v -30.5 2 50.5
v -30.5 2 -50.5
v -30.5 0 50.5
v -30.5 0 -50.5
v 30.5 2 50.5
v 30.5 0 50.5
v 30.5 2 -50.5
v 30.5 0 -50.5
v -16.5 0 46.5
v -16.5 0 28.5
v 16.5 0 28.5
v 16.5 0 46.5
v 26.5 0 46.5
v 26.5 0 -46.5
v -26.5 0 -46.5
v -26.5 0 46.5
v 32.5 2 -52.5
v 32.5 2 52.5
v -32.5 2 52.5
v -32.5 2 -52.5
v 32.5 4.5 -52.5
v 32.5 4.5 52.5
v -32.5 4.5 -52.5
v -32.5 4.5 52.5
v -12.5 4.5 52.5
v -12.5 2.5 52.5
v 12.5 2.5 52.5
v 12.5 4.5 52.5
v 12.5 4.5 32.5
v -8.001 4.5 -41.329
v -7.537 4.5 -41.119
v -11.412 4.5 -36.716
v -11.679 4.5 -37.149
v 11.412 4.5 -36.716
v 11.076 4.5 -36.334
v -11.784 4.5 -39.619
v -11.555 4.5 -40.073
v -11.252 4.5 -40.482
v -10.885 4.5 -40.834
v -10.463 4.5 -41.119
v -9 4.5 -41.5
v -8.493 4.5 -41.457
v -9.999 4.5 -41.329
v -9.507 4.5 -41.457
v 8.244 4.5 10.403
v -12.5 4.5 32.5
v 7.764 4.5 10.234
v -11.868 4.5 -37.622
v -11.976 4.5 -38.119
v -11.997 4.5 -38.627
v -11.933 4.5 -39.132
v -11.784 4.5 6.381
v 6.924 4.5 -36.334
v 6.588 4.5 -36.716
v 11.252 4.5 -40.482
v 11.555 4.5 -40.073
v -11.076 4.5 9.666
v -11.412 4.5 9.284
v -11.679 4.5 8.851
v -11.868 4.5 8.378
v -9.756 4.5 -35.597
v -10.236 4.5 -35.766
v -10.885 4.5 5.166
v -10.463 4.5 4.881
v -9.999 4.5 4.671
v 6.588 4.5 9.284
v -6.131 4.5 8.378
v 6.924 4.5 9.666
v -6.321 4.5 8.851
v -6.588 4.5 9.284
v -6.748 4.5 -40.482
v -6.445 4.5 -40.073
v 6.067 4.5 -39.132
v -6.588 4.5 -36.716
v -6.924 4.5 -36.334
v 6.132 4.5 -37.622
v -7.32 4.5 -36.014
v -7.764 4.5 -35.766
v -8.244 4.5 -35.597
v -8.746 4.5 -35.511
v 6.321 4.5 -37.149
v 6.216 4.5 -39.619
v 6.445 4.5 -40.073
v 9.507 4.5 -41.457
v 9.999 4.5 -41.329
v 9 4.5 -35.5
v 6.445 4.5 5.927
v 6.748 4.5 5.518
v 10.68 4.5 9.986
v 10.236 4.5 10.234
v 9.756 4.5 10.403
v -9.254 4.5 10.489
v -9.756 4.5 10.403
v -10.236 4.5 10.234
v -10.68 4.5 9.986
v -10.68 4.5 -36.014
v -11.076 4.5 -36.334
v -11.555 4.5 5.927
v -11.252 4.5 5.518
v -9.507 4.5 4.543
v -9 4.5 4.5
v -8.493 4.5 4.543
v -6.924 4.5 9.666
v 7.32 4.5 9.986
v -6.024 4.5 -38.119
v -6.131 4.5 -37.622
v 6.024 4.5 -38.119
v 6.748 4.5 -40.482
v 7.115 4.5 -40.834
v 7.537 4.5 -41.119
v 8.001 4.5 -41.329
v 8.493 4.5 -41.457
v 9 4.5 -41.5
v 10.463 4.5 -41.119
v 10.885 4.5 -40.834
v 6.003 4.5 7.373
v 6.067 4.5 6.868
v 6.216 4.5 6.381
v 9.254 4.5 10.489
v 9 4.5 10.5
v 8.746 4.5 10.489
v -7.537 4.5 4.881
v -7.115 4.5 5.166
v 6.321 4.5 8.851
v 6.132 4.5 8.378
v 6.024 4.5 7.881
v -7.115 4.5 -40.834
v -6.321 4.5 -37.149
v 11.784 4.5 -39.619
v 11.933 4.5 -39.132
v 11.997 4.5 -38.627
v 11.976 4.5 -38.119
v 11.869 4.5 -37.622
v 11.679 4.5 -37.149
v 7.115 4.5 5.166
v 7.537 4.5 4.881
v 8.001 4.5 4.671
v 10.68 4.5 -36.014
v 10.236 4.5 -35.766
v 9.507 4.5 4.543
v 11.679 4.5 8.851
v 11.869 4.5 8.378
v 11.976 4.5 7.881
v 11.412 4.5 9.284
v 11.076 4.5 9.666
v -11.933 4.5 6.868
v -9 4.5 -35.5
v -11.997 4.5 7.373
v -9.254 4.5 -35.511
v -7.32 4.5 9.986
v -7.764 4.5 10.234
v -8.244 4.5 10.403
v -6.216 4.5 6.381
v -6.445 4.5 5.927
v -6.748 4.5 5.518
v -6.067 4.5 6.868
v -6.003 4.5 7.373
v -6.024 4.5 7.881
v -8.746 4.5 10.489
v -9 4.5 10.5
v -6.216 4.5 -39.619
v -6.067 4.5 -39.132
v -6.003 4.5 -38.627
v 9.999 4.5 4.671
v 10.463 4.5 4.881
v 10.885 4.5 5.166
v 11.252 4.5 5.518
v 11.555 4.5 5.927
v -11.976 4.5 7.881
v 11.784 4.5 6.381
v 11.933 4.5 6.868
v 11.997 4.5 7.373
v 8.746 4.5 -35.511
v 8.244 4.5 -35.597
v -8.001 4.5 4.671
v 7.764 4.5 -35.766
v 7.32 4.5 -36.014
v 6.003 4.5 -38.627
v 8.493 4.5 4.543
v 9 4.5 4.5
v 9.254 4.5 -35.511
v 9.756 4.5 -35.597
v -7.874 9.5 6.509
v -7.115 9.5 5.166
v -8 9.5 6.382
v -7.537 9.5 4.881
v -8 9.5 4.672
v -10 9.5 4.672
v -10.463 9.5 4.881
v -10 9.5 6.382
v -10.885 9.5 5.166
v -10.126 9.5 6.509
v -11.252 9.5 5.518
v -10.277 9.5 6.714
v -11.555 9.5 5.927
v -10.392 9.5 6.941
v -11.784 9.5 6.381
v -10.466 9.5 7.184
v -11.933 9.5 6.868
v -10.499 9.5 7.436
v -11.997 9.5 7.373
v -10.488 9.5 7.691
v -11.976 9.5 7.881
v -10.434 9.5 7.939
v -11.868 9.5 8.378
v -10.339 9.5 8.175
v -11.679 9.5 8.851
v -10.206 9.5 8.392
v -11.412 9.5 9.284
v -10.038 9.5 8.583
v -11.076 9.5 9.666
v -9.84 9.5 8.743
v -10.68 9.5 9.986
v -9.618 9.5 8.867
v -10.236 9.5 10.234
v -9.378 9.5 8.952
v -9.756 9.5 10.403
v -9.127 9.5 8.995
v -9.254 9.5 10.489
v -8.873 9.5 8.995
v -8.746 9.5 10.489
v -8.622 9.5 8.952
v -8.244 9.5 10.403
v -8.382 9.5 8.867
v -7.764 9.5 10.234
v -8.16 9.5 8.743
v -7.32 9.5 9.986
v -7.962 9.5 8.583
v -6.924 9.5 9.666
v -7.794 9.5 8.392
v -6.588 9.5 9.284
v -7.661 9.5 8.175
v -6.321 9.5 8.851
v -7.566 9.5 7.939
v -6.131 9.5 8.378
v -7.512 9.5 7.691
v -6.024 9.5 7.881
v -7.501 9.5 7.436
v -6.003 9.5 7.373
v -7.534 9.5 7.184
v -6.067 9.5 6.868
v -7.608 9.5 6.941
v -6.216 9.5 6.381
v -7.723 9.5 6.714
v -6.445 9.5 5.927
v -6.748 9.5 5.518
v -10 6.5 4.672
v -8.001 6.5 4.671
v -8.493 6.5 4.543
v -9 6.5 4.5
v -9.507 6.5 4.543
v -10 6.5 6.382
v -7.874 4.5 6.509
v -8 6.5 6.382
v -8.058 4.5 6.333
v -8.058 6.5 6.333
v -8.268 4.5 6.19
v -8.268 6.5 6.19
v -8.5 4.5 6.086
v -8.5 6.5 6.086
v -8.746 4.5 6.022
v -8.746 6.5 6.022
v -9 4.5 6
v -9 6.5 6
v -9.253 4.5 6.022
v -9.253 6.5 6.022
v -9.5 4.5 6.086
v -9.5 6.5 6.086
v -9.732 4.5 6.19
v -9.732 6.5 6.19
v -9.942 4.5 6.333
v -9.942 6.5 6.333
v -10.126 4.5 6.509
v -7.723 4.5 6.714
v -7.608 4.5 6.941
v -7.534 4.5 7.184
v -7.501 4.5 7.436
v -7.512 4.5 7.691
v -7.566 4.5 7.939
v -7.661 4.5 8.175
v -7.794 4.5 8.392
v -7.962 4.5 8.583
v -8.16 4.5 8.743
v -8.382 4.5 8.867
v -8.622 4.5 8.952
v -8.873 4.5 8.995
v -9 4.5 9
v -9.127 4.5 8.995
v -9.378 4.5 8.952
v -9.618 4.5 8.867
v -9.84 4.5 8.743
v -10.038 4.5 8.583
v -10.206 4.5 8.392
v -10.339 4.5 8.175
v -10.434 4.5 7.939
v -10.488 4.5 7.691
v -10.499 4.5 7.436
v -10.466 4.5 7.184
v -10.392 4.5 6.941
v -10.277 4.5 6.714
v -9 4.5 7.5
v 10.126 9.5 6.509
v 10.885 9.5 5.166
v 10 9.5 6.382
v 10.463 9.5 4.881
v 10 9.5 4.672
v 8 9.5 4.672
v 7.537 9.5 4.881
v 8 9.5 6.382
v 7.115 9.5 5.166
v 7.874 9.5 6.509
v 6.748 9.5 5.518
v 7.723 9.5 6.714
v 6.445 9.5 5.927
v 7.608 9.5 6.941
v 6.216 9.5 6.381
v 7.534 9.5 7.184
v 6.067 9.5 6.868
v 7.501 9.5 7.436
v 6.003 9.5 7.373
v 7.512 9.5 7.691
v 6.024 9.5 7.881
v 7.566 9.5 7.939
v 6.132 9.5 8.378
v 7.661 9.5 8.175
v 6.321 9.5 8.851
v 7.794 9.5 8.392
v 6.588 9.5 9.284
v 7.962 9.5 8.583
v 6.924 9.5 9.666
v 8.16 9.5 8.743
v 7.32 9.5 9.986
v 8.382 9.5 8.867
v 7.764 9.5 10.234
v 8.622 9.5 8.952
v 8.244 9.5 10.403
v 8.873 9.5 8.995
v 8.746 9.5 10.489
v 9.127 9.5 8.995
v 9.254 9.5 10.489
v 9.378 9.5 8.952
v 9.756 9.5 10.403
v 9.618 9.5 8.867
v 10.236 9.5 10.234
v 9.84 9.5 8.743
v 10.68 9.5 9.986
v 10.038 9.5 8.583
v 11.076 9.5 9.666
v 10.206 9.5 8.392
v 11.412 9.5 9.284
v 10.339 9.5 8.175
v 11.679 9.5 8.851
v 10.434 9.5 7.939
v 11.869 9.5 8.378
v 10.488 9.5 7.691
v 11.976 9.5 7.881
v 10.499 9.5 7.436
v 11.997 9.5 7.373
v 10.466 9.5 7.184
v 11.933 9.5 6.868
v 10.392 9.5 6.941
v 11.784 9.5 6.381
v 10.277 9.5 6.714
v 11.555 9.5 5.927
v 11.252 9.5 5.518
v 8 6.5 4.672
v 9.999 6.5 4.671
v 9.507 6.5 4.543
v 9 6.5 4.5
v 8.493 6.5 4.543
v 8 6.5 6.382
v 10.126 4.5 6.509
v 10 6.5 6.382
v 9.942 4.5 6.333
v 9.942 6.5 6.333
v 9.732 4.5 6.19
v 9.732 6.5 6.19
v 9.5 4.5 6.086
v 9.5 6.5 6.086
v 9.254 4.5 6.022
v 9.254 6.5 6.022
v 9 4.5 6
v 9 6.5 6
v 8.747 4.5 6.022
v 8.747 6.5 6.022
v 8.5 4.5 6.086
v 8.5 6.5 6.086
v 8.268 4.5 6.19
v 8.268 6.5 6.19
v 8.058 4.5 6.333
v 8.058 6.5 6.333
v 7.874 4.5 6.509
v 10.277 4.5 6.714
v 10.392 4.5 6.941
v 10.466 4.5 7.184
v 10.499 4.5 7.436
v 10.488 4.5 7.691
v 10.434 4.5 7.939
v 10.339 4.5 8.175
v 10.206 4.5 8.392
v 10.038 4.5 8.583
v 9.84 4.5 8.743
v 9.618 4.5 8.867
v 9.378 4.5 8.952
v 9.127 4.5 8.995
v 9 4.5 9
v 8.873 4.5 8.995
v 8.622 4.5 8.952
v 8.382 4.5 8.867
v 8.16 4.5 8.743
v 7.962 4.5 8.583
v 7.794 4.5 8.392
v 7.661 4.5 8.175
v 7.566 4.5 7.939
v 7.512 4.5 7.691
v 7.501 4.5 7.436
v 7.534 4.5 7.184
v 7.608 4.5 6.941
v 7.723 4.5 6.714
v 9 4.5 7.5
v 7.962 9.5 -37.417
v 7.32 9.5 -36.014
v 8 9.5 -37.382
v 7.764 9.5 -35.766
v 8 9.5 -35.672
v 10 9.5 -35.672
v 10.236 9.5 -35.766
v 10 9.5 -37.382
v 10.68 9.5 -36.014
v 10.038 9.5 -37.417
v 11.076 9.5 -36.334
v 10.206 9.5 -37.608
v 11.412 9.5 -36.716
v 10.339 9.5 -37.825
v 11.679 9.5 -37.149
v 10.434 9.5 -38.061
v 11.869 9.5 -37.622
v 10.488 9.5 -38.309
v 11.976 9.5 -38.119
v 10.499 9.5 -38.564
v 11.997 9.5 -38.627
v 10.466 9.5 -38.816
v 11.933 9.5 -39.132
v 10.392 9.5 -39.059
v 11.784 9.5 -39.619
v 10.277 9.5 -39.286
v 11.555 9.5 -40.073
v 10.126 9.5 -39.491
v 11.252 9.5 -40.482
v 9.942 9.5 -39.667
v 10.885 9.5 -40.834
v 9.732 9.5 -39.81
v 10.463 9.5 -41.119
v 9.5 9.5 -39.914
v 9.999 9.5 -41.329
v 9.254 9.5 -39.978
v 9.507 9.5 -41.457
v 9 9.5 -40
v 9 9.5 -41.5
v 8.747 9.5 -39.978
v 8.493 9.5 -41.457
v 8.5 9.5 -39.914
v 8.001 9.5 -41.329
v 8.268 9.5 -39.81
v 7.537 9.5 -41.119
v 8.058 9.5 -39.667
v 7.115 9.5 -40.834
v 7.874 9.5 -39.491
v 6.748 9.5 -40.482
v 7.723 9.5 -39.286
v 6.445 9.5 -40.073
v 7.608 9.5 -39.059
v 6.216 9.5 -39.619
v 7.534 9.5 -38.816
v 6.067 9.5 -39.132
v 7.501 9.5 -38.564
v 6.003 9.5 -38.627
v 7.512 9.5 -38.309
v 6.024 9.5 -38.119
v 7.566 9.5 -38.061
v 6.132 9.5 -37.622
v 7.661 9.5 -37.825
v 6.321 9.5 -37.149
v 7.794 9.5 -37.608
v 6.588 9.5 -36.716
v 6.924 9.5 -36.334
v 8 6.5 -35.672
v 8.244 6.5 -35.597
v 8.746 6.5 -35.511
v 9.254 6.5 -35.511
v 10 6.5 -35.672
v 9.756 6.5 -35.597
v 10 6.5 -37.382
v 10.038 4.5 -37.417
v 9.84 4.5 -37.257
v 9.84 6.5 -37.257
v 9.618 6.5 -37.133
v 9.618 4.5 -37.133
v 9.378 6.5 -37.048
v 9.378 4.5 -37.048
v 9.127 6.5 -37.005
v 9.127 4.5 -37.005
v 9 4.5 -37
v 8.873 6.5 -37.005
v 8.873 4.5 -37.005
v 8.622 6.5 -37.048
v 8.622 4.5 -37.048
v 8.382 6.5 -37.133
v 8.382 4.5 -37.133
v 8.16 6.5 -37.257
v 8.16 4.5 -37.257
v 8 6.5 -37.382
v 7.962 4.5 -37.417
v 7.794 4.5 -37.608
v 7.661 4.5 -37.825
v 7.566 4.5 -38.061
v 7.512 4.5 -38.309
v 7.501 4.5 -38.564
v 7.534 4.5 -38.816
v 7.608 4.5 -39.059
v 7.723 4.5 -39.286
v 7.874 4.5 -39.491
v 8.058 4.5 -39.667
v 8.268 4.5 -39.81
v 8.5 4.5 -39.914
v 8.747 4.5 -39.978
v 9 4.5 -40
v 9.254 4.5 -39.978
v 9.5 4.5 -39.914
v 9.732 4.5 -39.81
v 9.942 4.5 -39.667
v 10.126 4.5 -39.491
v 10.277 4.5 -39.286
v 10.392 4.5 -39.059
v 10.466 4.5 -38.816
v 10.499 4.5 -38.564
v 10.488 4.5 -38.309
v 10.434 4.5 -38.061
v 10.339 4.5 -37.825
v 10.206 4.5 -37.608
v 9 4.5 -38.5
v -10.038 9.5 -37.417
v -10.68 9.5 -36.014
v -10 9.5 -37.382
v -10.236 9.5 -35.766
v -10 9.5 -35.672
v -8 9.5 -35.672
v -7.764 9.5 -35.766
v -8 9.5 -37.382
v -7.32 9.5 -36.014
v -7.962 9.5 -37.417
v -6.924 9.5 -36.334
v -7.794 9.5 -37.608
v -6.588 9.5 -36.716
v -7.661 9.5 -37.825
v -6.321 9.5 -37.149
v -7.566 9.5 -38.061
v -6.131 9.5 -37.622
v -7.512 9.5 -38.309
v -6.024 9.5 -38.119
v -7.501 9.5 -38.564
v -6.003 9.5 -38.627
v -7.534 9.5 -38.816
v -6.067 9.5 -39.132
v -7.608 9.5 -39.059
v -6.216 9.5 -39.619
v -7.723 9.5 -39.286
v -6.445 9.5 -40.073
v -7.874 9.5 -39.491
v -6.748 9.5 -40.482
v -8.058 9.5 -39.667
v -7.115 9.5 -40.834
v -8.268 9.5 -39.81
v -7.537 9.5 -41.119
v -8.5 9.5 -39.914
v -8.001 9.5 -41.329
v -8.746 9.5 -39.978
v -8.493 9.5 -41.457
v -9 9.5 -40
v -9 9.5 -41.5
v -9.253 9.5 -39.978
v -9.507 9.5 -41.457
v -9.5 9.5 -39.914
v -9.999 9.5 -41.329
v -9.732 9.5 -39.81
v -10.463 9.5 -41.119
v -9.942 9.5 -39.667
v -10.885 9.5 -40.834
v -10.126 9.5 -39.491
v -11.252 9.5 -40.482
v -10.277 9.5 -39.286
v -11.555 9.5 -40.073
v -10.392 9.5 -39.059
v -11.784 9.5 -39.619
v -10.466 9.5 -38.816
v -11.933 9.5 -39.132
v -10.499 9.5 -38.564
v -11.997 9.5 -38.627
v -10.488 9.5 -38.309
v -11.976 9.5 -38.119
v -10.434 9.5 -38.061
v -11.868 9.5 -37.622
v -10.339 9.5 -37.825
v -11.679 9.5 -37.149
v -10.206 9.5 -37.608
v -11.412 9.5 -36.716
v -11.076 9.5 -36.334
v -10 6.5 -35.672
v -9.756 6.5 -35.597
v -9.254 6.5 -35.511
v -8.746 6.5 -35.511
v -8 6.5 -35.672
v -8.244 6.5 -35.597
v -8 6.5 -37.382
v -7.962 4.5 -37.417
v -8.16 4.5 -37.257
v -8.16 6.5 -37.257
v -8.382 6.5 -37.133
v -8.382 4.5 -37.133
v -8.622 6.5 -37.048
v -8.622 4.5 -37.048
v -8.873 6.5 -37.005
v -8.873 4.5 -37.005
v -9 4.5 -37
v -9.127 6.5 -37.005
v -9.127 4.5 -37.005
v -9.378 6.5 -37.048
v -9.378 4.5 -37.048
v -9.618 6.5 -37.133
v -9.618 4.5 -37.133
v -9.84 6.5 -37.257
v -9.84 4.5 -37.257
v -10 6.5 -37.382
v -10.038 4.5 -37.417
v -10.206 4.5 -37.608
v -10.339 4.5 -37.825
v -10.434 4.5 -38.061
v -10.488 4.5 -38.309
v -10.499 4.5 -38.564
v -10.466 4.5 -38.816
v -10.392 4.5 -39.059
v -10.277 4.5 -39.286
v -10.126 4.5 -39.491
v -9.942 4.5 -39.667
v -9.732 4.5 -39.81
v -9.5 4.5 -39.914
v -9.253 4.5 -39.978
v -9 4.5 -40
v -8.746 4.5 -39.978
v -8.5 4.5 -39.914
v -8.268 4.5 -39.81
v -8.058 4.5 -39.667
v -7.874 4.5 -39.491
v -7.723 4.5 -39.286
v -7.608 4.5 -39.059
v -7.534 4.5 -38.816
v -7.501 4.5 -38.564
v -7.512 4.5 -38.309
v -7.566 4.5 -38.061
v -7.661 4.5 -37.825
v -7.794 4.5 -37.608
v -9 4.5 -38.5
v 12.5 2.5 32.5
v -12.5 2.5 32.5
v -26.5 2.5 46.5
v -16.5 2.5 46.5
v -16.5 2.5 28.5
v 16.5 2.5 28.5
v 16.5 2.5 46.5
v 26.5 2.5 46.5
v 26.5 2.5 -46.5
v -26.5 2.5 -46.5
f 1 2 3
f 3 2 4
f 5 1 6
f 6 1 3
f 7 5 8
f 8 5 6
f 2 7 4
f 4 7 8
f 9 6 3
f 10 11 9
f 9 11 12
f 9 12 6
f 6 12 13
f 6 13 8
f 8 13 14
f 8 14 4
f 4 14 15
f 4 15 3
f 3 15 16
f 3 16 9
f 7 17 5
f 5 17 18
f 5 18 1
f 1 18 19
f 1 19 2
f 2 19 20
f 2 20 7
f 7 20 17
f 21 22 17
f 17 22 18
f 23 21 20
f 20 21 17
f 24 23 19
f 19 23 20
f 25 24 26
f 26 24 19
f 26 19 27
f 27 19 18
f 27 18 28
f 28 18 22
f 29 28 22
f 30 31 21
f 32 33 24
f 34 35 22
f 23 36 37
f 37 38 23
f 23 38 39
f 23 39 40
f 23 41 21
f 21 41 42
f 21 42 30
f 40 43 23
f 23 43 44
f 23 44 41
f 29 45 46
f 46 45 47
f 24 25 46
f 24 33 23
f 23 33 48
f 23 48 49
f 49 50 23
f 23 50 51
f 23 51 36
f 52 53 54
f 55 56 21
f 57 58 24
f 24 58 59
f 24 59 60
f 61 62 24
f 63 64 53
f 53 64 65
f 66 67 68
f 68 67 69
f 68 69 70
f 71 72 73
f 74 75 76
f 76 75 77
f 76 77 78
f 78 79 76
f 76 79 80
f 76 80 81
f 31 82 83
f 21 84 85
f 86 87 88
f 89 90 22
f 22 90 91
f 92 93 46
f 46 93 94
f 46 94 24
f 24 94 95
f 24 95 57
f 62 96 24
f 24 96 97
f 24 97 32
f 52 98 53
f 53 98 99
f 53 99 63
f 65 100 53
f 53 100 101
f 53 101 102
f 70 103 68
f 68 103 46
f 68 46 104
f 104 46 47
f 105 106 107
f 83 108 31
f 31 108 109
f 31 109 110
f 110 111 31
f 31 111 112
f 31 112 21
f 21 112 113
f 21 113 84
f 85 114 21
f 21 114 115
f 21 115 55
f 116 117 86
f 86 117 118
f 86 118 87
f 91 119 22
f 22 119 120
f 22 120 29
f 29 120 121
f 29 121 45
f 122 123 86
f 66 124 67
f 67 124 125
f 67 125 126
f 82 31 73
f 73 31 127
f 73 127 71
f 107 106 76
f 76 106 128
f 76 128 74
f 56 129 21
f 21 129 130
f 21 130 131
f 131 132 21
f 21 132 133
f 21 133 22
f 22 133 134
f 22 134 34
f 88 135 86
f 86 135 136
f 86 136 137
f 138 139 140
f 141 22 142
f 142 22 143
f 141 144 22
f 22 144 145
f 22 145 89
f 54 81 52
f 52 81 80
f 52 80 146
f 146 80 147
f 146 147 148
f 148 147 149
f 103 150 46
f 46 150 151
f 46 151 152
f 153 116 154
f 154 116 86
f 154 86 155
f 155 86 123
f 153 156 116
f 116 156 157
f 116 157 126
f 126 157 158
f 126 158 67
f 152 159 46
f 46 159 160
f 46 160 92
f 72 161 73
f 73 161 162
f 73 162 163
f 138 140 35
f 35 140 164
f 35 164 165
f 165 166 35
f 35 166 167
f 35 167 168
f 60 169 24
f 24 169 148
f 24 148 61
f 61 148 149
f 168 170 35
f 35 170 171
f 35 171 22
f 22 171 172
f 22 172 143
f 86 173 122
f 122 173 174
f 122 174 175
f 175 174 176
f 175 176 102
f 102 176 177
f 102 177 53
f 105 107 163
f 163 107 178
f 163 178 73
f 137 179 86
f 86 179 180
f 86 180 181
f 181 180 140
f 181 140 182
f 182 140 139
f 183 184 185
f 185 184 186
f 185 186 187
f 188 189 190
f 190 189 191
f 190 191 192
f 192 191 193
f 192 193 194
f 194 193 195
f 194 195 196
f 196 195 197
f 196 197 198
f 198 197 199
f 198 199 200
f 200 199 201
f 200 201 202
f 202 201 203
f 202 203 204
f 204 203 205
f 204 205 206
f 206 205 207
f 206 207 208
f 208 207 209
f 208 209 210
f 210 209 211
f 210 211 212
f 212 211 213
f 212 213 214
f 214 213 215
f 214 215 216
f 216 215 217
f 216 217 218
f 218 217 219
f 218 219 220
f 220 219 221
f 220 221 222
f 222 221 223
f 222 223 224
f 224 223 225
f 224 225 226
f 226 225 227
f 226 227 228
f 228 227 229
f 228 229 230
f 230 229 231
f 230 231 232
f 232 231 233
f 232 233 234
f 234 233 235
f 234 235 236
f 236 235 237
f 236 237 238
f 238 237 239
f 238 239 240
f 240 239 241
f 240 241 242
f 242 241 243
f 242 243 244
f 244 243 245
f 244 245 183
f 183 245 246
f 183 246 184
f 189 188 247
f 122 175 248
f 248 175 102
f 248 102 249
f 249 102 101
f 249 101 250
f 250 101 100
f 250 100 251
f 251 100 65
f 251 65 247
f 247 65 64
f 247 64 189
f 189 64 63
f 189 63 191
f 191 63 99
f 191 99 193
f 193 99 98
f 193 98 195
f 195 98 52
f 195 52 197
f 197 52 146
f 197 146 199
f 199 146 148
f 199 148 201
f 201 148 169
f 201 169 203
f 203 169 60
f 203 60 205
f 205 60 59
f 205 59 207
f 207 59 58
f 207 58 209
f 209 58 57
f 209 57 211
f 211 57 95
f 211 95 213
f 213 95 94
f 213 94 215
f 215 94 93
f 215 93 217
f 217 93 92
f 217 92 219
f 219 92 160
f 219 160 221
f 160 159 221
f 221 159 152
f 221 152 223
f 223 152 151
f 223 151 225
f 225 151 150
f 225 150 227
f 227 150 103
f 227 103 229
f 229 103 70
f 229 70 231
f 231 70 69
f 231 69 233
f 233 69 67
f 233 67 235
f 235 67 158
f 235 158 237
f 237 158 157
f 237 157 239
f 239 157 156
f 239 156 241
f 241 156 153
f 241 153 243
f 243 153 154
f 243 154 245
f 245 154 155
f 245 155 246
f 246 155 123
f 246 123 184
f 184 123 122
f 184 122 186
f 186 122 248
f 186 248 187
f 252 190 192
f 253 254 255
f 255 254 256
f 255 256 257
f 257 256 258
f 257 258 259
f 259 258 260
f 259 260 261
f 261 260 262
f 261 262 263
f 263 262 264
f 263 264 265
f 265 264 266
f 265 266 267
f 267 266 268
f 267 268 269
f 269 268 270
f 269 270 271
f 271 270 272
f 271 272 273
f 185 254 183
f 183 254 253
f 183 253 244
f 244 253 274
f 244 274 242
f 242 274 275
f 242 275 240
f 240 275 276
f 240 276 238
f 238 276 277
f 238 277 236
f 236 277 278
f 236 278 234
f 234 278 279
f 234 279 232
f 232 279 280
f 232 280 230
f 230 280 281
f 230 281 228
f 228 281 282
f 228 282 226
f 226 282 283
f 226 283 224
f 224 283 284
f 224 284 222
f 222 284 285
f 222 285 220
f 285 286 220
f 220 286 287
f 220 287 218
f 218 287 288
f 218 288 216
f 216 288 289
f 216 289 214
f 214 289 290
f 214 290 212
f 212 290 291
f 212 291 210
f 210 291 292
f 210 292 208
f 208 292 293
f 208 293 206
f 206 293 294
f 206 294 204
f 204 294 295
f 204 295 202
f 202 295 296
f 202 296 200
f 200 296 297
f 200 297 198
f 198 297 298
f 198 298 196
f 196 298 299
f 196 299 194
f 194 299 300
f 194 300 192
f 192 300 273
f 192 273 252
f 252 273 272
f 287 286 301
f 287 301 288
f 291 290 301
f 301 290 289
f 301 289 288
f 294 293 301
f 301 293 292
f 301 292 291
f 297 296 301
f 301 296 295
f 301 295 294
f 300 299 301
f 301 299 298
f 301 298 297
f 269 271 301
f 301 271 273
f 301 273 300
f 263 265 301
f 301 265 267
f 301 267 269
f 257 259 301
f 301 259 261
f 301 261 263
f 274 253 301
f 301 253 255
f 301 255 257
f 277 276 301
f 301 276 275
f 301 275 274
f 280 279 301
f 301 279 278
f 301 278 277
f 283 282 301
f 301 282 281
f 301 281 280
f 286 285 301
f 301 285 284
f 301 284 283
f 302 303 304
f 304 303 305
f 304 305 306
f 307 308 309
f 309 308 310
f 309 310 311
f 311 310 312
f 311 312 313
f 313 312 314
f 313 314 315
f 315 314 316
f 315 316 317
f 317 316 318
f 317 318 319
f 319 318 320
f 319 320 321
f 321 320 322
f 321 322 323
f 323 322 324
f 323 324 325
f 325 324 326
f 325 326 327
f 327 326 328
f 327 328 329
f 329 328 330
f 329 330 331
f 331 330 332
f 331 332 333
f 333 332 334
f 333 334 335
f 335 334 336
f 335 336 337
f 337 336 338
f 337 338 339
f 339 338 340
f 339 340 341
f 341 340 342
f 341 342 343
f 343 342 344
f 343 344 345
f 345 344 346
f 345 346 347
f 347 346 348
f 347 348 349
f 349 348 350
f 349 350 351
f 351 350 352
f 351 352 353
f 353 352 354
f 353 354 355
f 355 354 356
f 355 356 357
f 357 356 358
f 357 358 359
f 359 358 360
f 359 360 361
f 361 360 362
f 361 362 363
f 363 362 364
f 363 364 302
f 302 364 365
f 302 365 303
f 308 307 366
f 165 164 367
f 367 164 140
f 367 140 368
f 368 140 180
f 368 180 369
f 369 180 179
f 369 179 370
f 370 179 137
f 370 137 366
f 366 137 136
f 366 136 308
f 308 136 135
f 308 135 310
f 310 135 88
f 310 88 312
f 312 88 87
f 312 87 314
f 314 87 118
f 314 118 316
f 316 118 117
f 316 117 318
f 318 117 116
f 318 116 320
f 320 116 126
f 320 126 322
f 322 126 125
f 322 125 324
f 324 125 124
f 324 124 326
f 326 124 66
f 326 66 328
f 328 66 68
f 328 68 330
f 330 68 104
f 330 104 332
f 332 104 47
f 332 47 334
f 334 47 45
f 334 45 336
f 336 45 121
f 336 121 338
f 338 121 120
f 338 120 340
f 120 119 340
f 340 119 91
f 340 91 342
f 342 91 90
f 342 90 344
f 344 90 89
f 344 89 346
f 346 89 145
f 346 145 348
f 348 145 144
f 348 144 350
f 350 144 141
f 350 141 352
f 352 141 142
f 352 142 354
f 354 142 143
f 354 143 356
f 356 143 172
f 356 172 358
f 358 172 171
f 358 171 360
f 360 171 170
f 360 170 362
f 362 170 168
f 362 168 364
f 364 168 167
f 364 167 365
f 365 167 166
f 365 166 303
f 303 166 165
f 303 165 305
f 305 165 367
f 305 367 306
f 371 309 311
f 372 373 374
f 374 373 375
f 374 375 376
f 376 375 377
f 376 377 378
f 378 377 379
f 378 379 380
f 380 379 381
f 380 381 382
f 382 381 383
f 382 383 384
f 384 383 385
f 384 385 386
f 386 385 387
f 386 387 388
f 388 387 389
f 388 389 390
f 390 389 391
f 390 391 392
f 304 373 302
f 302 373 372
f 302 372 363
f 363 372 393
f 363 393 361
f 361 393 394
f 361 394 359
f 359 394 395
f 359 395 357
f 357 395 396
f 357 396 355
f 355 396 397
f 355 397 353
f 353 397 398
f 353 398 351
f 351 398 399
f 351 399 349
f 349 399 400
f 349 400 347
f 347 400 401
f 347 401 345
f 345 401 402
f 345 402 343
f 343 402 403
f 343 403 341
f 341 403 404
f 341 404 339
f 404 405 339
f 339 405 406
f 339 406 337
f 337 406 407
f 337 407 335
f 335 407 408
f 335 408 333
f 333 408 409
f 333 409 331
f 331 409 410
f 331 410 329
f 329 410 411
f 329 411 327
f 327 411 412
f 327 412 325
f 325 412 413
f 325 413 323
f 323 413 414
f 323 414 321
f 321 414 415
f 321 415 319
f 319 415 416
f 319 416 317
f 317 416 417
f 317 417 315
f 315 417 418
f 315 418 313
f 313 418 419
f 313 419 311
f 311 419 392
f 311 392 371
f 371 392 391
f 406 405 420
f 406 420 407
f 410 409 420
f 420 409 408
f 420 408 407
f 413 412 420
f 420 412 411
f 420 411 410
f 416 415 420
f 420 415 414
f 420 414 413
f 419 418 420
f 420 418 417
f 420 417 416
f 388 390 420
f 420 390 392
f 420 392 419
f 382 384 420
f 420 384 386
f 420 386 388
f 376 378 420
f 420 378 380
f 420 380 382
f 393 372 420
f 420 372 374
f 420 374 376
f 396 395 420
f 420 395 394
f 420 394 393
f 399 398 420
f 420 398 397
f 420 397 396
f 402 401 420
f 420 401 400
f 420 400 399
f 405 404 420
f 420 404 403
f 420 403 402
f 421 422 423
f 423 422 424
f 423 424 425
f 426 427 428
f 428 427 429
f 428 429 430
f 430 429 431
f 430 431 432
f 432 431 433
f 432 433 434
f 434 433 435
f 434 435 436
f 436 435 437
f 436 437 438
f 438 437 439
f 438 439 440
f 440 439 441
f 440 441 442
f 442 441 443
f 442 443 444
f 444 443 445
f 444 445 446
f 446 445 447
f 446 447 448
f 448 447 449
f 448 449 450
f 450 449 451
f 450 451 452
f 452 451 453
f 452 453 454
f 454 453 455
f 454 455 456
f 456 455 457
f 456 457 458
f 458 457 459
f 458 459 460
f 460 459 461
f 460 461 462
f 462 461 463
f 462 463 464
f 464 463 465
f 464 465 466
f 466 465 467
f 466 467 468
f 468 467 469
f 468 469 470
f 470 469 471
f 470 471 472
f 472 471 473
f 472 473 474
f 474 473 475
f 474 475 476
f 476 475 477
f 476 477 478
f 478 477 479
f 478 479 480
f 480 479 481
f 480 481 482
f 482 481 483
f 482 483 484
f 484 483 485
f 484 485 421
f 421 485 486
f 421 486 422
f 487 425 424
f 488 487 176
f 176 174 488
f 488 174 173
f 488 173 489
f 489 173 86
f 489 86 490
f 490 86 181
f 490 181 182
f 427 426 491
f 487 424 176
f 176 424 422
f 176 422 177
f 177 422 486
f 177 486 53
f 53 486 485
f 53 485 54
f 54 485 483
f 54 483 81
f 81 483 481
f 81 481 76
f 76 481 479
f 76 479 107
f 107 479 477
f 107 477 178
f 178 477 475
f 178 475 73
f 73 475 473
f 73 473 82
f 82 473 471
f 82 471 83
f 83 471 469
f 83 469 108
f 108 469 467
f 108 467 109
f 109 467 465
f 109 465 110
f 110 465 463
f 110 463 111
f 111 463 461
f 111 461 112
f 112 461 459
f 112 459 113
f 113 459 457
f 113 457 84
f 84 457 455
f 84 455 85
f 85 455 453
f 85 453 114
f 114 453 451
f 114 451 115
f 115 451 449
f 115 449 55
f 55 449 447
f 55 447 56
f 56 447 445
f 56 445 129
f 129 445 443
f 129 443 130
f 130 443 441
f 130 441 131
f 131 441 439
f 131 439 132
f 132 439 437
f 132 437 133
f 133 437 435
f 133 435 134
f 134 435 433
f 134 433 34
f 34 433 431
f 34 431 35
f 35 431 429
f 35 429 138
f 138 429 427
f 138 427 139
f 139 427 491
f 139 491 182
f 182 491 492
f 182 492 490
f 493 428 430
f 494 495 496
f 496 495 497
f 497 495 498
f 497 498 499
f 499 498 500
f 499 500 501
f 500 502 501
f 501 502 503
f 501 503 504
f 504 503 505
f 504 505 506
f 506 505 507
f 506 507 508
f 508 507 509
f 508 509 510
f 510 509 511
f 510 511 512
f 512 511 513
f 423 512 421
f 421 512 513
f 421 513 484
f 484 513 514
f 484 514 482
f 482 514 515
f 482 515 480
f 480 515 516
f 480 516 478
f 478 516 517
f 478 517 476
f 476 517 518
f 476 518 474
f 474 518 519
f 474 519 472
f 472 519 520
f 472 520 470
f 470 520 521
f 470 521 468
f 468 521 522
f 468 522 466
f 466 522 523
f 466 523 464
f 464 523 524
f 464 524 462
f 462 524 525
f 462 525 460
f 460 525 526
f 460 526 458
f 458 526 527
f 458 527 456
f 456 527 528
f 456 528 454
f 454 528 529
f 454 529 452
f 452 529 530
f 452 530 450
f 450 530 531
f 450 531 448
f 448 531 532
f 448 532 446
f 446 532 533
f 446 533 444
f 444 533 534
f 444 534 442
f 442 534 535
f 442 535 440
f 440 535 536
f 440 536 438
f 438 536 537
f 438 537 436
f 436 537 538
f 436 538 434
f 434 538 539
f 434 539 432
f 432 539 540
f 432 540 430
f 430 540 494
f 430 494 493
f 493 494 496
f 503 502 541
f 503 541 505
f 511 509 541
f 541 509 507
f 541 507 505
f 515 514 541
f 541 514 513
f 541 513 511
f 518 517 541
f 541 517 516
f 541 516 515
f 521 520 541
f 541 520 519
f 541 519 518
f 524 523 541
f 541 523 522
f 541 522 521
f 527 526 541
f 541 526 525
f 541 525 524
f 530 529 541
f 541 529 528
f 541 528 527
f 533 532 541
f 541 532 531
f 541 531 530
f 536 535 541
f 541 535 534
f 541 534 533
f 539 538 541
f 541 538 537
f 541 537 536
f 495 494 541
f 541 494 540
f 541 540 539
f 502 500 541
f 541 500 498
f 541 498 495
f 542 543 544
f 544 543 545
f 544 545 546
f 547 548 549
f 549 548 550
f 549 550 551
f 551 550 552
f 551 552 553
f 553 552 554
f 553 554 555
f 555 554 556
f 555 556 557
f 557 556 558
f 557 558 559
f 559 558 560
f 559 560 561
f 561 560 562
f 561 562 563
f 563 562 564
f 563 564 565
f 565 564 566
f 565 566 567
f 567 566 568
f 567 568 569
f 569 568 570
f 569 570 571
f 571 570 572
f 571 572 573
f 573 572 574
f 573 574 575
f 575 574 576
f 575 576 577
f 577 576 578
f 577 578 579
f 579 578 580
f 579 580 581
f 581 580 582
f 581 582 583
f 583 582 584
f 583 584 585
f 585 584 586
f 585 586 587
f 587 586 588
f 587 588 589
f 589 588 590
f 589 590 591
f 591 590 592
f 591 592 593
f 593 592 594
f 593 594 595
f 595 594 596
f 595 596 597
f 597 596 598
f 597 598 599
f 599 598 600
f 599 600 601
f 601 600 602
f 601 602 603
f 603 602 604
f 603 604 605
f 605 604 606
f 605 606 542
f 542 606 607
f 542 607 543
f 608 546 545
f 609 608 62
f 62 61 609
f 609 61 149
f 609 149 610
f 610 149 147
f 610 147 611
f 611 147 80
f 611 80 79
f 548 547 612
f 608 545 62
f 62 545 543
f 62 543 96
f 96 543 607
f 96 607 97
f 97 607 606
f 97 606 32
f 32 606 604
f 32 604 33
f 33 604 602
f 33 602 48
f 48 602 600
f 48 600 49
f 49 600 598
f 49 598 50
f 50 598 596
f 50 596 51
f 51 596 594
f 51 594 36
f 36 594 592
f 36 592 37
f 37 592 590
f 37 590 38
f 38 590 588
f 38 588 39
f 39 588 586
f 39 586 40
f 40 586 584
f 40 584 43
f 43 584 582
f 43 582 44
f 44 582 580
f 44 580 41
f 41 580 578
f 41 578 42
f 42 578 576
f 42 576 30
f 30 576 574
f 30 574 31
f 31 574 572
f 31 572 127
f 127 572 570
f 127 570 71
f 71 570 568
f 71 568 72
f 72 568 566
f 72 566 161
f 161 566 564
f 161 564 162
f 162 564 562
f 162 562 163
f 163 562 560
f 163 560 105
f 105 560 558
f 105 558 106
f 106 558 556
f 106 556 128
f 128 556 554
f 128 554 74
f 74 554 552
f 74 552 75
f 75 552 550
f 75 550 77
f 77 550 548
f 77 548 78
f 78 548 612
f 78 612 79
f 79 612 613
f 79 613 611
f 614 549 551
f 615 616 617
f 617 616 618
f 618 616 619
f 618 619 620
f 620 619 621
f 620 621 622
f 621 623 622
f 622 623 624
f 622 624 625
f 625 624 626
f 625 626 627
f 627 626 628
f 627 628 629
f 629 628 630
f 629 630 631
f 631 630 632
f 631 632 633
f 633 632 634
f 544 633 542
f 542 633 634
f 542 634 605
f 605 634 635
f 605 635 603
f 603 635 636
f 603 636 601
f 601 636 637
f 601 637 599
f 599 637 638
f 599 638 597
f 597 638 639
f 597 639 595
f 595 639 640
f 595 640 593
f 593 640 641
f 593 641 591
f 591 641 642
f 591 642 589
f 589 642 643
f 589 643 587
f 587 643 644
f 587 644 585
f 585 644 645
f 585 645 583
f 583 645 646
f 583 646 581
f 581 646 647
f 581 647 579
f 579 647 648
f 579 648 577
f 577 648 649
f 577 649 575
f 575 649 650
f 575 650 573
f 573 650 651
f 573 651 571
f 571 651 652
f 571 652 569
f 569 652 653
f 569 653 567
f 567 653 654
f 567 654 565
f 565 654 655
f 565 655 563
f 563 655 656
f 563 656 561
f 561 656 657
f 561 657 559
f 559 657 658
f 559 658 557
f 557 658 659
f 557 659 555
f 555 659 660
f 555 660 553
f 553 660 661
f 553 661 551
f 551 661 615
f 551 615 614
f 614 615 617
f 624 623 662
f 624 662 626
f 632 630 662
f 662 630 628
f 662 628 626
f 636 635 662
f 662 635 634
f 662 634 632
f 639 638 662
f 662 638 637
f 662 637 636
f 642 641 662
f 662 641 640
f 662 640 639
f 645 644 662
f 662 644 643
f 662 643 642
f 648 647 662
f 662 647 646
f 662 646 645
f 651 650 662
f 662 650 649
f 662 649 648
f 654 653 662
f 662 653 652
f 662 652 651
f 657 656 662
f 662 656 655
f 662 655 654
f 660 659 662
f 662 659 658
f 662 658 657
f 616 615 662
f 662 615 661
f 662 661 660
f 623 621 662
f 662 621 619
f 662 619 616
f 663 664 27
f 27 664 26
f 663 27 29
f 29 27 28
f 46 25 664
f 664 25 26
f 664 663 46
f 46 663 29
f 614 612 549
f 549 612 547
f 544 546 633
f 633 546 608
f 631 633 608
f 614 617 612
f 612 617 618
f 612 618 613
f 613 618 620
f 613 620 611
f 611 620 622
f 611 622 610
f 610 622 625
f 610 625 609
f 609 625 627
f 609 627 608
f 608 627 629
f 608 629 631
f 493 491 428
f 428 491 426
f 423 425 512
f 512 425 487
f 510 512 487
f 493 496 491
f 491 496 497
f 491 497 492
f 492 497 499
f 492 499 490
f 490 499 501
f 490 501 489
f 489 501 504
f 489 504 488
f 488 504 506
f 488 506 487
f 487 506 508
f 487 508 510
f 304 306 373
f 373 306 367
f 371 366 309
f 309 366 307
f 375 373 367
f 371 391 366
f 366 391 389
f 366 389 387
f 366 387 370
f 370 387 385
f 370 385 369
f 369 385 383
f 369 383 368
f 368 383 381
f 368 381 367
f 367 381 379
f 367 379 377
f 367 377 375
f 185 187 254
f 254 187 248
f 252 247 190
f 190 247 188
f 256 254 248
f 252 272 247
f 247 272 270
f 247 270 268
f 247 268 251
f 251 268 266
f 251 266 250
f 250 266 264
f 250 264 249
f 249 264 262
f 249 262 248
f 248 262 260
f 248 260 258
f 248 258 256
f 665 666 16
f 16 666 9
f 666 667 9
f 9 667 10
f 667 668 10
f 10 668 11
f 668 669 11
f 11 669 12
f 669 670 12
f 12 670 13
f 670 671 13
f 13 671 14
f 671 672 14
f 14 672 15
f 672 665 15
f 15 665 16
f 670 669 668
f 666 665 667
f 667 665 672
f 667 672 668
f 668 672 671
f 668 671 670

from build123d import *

# Parameters (mm, degrees)
SKETCH1_W           = 61
SKETCH1_H           = 101
BOSS_EXTRUDE1_DEPTH = 2
SKETCH2_W           = 65
SKETCH2_H           = 105
BOSS_EXTRUDE2_DEPTH = 2.5
SKETCH4_R           = 3
SKETCH4_R_2         = 1.5
BOSS_EXTRUDE3_DEPTH = 5
SKETCH5_W           = 25
SKETCH5_H           = 32
CUT_EXTRUDE1_DEPTH  = 2
SKETCH6_W           = 2
SKETCH6_H           = 4
CUT_EXTRUDE2_DEPTH  = 3
CUT_EXTRUDE3_DEPTH  = 2.5


with BuildPart() as part:
    # Sketch1 → Boss-Extrude1 (new body)
    with BuildSketch(Plane(origin=(0, 0, 0), x_dir=(1, 0, 0), z_dir=(0, 1, 0))):
        Rectangle(SKETCH1_W, SKETCH1_H)
    extrude(amount=BOSS_EXTRUDE1_DEPTH)

    # Sketch2 → Boss-Extrude2 (add)
    with BuildSketch(Plane(origin=(0, 2, 0), x_dir=(1, 0, 0), z_dir=(0, 1, 0))):
        Rectangle(SKETCH2_W, SKETCH2_H)
    extrude(amount=BOSS_EXTRUDE2_DEPTH)

    # Sketch4 → Boss-Extrude3 (add)
    with BuildSketch(Plane(origin=(0, 4.5, 0), x_dir=(1, 0, 0), z_dir=(0, 1, 0))):
        with Locations((-9, -7.5)):
            Circle(SKETCH4_R)
        with Locations((-9, -7.5)):
            Circle(SKETCH4_R_2, mode=Mode.SUBTRACT)
        with Locations((9, -7.5)):
            Circle(SKETCH4_R)
        with Locations((9, -7.5)):
            Circle(SKETCH4_R_2, mode=Mode.SUBTRACT)
        with Locations((9, 38.5)):
            Circle(SKETCH4_R)
        with Locations((9, 38.5)):
            Circle(SKETCH4_R_2, mode=Mode.SUBTRACT)
        with Locations((-9, 38.5)):
            Circle(SKETCH4_R)
        with Locations((-9, 38.5)):
            Circle(SKETCH4_R_2, mode=Mode.SUBTRACT)
    extrude(amount=BOSS_EXTRUDE3_DEPTH)

    # Sketch5 → Cut-Extrude1 (cut)
    with BuildSketch(Plane(origin=(0, 4.5, 0), x_dir=(1, 0, 0), z_dir=(0, 1, 0))):
        with Locations((0, -48.5)):
            Rectangle(SKETCH5_W, SKETCH5_H)
    extrude(amount=-CUT_EXTRUDE1_DEPTH, mode=Mode.SUBTRACT)

    # Sketch6 → Cut-Extrude2 (cut)
    with BuildSketch(Plane(origin=(0, 9.5, 0), x_dir=(1, 0, 0), z_dir=(0, 1, 0))):
        with Locations((9, -6)):
            Rectangle(SKETCH6_W, SKETCH6_H)
        with Locations((-9, -6)):
            Rectangle(SKETCH6_W, SKETCH6_H)
        with Locations((9, 37)):
            Rectangle(SKETCH6_W, SKETCH6_H)
        with Locations((-9, 37)):
            Rectangle(SKETCH6_W, SKETCH6_H)
    extrude(amount=-CUT_EXTRUDE2_DEPTH, mode=Mode.SUBTRACT)

    # Sketch7 → Cut-Extrude3 (cut)
    with BuildSketch(Plane.XZ):
        Polygon((-16.5, 28.5), (16.5, 28.5), (16.5, 46.5), (26.5, 46.5), (26.5, 28.5), (26.5, -46.5), (-26.5, -46.5), (-26.5, 28.5), (-26.5, 46.5), (-16.5, 46.5), align=None)
    extrude(amount=-CUT_EXTRUDE3_DEPTH, mode=Mode.SUBTRACT)


solid = part.part
